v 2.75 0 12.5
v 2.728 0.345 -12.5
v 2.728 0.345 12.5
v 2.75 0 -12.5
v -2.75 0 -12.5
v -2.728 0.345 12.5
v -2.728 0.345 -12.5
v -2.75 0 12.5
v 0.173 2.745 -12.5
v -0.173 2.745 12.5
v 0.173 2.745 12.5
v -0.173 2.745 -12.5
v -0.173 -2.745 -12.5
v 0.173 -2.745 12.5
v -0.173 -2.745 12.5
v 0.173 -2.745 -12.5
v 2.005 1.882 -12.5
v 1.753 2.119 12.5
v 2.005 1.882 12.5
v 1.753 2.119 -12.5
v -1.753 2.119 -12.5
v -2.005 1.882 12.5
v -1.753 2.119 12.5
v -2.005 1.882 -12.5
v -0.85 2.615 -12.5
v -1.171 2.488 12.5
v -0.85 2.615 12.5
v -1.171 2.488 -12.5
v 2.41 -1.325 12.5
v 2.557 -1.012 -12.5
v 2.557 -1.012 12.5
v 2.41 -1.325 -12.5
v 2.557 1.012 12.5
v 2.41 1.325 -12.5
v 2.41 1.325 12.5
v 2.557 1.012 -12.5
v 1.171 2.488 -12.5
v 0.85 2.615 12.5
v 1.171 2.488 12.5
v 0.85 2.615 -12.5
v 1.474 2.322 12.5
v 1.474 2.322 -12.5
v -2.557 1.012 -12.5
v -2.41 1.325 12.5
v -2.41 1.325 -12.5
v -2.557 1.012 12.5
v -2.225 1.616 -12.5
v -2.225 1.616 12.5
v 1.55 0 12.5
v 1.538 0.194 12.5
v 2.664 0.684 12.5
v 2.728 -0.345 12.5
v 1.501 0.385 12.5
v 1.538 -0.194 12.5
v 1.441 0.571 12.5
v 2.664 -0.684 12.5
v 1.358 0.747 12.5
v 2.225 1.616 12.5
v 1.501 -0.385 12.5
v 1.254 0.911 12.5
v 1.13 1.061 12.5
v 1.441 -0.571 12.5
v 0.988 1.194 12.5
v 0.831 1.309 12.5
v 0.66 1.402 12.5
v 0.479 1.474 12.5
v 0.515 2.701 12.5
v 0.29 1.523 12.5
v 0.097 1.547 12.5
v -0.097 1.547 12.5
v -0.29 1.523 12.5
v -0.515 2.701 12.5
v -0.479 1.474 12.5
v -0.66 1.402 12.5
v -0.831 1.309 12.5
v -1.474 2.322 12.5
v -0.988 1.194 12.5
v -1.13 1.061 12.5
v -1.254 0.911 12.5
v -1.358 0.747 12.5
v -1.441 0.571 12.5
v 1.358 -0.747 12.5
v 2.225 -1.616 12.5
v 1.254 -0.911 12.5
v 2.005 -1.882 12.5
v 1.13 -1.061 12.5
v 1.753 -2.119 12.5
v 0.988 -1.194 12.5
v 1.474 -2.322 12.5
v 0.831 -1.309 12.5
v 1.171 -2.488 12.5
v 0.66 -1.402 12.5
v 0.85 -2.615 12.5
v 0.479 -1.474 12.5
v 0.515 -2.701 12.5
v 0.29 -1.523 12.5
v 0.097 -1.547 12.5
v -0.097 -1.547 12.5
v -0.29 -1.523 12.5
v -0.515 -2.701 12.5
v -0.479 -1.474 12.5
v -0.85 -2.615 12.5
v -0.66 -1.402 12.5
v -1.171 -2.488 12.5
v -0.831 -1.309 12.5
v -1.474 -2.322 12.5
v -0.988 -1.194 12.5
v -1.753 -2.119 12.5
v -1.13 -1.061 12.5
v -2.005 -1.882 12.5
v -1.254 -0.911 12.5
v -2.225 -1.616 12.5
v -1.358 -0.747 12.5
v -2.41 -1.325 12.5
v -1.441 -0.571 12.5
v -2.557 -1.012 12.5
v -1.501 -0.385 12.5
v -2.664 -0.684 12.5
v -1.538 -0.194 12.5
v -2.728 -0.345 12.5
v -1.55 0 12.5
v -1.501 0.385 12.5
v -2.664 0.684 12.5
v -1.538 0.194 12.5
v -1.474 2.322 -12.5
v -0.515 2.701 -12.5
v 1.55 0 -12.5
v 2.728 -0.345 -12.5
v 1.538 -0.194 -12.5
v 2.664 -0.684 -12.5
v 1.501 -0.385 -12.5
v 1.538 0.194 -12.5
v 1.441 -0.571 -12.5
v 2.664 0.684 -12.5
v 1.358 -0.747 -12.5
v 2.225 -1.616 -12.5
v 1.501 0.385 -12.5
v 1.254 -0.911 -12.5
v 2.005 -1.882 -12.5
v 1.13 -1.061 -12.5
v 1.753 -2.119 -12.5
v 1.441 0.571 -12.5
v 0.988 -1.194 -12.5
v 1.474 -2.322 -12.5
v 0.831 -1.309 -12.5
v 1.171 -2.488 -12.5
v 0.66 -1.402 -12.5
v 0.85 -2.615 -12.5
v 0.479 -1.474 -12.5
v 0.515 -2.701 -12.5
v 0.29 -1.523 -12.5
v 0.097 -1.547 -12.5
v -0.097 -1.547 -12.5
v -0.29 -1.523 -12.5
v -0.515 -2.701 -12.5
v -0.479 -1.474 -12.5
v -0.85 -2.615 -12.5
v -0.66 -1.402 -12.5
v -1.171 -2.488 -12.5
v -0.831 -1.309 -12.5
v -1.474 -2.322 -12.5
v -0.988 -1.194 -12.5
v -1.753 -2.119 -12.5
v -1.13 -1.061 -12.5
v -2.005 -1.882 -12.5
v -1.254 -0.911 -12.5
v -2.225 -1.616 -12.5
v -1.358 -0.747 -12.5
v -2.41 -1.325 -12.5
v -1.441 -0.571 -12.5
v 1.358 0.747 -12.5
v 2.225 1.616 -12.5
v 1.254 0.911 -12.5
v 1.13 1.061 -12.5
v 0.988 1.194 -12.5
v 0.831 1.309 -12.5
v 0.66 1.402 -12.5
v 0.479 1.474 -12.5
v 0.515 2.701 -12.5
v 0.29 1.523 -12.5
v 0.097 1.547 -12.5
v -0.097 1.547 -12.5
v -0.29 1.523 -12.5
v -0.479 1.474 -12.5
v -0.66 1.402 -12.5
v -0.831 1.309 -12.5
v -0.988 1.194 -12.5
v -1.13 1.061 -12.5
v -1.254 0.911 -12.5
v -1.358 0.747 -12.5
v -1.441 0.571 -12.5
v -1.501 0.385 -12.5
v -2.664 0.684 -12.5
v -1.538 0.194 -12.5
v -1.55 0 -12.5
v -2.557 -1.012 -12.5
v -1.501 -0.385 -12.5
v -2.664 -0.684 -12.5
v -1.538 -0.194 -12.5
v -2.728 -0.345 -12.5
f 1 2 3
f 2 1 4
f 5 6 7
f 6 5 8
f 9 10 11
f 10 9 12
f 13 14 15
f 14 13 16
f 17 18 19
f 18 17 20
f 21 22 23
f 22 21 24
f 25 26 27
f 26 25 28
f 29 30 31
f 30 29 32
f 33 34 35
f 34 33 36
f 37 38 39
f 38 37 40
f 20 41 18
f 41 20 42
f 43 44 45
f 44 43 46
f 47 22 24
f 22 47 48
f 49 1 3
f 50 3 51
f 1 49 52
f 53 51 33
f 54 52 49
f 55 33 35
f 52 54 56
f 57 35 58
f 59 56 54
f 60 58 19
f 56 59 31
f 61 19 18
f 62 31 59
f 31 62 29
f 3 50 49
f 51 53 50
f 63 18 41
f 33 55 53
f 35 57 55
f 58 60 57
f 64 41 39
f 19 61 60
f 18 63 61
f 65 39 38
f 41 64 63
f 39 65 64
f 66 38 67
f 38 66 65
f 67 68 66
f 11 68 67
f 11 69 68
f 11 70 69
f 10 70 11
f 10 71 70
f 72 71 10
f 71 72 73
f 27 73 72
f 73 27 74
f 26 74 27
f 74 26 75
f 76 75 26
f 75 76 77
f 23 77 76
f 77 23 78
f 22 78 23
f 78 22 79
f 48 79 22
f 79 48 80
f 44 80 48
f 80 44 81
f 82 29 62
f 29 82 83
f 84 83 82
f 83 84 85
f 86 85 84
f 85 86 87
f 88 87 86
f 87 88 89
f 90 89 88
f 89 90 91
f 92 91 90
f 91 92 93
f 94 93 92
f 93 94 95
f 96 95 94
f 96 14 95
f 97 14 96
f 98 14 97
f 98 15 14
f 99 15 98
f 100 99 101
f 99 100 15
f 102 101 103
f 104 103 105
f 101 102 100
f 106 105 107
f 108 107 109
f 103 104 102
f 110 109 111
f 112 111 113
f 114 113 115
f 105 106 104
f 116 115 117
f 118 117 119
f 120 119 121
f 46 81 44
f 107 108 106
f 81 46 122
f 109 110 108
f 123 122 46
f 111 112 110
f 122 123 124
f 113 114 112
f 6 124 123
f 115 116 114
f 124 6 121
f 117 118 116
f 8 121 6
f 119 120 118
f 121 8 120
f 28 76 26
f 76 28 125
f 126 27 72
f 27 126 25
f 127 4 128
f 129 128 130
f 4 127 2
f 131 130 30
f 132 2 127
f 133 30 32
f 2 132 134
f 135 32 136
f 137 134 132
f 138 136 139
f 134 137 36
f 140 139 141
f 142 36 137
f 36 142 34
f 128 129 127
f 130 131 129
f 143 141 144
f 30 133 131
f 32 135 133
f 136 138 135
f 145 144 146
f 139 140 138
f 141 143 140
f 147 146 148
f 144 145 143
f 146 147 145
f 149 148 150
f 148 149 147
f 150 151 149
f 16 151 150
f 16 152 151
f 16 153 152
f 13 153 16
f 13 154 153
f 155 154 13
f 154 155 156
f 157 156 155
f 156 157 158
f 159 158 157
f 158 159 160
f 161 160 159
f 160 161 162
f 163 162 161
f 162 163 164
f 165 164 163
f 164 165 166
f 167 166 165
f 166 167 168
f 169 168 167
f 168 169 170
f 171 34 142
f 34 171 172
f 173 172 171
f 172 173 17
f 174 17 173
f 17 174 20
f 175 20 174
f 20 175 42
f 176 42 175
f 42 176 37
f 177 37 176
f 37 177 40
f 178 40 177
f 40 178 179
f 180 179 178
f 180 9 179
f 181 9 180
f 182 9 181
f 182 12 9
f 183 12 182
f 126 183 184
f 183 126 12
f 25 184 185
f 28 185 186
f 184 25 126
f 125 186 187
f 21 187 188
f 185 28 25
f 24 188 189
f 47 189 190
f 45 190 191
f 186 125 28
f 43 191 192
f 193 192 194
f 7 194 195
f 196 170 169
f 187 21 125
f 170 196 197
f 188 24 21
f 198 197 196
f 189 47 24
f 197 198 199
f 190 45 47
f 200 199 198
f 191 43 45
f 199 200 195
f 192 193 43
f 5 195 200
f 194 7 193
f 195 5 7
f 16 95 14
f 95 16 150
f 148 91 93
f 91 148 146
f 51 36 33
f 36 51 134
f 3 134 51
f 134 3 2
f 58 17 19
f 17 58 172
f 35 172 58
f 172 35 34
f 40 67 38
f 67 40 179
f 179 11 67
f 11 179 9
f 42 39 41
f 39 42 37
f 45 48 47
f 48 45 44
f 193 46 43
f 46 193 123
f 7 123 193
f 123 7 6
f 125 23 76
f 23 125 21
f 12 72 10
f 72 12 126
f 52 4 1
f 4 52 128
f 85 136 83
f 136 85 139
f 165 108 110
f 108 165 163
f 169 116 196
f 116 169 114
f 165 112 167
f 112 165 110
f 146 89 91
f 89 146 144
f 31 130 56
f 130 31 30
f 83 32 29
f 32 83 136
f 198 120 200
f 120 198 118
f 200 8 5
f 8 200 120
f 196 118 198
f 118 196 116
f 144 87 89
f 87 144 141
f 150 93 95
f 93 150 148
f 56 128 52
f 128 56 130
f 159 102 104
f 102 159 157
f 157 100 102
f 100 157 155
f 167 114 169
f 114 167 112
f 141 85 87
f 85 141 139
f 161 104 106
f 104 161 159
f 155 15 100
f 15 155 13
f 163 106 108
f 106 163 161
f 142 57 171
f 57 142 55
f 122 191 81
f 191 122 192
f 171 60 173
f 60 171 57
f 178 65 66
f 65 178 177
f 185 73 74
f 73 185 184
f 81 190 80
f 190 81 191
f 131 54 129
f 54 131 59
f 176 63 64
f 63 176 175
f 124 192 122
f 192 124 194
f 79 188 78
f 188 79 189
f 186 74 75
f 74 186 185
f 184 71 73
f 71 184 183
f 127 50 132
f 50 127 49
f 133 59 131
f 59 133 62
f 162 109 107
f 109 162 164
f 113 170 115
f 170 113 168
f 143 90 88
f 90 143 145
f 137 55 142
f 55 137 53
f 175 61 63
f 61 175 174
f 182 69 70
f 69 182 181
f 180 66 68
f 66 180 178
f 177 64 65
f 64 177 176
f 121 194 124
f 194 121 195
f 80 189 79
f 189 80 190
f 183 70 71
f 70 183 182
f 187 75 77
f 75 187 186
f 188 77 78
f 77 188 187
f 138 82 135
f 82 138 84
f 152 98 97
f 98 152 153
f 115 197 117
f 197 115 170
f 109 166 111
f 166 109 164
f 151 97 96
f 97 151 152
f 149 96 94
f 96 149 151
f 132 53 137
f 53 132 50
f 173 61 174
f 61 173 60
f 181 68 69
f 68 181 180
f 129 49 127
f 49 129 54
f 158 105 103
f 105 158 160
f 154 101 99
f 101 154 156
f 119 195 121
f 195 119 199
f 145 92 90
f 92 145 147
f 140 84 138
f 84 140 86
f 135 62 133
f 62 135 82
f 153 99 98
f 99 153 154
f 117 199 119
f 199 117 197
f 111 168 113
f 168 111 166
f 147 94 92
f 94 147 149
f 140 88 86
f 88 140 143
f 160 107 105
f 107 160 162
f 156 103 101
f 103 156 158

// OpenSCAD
$fn = 50;


difference() {
	union() {
		translate(v = [0, 0, -12.5000000000]) {
			cylinder(h = 25, r = 2.7500000000);
		}
	}
	union() {
		translate(v = [0, 0, -100.0000000000]) {
			cylinder(h = 200, r = 1.5500000000);
		}
	}
}
